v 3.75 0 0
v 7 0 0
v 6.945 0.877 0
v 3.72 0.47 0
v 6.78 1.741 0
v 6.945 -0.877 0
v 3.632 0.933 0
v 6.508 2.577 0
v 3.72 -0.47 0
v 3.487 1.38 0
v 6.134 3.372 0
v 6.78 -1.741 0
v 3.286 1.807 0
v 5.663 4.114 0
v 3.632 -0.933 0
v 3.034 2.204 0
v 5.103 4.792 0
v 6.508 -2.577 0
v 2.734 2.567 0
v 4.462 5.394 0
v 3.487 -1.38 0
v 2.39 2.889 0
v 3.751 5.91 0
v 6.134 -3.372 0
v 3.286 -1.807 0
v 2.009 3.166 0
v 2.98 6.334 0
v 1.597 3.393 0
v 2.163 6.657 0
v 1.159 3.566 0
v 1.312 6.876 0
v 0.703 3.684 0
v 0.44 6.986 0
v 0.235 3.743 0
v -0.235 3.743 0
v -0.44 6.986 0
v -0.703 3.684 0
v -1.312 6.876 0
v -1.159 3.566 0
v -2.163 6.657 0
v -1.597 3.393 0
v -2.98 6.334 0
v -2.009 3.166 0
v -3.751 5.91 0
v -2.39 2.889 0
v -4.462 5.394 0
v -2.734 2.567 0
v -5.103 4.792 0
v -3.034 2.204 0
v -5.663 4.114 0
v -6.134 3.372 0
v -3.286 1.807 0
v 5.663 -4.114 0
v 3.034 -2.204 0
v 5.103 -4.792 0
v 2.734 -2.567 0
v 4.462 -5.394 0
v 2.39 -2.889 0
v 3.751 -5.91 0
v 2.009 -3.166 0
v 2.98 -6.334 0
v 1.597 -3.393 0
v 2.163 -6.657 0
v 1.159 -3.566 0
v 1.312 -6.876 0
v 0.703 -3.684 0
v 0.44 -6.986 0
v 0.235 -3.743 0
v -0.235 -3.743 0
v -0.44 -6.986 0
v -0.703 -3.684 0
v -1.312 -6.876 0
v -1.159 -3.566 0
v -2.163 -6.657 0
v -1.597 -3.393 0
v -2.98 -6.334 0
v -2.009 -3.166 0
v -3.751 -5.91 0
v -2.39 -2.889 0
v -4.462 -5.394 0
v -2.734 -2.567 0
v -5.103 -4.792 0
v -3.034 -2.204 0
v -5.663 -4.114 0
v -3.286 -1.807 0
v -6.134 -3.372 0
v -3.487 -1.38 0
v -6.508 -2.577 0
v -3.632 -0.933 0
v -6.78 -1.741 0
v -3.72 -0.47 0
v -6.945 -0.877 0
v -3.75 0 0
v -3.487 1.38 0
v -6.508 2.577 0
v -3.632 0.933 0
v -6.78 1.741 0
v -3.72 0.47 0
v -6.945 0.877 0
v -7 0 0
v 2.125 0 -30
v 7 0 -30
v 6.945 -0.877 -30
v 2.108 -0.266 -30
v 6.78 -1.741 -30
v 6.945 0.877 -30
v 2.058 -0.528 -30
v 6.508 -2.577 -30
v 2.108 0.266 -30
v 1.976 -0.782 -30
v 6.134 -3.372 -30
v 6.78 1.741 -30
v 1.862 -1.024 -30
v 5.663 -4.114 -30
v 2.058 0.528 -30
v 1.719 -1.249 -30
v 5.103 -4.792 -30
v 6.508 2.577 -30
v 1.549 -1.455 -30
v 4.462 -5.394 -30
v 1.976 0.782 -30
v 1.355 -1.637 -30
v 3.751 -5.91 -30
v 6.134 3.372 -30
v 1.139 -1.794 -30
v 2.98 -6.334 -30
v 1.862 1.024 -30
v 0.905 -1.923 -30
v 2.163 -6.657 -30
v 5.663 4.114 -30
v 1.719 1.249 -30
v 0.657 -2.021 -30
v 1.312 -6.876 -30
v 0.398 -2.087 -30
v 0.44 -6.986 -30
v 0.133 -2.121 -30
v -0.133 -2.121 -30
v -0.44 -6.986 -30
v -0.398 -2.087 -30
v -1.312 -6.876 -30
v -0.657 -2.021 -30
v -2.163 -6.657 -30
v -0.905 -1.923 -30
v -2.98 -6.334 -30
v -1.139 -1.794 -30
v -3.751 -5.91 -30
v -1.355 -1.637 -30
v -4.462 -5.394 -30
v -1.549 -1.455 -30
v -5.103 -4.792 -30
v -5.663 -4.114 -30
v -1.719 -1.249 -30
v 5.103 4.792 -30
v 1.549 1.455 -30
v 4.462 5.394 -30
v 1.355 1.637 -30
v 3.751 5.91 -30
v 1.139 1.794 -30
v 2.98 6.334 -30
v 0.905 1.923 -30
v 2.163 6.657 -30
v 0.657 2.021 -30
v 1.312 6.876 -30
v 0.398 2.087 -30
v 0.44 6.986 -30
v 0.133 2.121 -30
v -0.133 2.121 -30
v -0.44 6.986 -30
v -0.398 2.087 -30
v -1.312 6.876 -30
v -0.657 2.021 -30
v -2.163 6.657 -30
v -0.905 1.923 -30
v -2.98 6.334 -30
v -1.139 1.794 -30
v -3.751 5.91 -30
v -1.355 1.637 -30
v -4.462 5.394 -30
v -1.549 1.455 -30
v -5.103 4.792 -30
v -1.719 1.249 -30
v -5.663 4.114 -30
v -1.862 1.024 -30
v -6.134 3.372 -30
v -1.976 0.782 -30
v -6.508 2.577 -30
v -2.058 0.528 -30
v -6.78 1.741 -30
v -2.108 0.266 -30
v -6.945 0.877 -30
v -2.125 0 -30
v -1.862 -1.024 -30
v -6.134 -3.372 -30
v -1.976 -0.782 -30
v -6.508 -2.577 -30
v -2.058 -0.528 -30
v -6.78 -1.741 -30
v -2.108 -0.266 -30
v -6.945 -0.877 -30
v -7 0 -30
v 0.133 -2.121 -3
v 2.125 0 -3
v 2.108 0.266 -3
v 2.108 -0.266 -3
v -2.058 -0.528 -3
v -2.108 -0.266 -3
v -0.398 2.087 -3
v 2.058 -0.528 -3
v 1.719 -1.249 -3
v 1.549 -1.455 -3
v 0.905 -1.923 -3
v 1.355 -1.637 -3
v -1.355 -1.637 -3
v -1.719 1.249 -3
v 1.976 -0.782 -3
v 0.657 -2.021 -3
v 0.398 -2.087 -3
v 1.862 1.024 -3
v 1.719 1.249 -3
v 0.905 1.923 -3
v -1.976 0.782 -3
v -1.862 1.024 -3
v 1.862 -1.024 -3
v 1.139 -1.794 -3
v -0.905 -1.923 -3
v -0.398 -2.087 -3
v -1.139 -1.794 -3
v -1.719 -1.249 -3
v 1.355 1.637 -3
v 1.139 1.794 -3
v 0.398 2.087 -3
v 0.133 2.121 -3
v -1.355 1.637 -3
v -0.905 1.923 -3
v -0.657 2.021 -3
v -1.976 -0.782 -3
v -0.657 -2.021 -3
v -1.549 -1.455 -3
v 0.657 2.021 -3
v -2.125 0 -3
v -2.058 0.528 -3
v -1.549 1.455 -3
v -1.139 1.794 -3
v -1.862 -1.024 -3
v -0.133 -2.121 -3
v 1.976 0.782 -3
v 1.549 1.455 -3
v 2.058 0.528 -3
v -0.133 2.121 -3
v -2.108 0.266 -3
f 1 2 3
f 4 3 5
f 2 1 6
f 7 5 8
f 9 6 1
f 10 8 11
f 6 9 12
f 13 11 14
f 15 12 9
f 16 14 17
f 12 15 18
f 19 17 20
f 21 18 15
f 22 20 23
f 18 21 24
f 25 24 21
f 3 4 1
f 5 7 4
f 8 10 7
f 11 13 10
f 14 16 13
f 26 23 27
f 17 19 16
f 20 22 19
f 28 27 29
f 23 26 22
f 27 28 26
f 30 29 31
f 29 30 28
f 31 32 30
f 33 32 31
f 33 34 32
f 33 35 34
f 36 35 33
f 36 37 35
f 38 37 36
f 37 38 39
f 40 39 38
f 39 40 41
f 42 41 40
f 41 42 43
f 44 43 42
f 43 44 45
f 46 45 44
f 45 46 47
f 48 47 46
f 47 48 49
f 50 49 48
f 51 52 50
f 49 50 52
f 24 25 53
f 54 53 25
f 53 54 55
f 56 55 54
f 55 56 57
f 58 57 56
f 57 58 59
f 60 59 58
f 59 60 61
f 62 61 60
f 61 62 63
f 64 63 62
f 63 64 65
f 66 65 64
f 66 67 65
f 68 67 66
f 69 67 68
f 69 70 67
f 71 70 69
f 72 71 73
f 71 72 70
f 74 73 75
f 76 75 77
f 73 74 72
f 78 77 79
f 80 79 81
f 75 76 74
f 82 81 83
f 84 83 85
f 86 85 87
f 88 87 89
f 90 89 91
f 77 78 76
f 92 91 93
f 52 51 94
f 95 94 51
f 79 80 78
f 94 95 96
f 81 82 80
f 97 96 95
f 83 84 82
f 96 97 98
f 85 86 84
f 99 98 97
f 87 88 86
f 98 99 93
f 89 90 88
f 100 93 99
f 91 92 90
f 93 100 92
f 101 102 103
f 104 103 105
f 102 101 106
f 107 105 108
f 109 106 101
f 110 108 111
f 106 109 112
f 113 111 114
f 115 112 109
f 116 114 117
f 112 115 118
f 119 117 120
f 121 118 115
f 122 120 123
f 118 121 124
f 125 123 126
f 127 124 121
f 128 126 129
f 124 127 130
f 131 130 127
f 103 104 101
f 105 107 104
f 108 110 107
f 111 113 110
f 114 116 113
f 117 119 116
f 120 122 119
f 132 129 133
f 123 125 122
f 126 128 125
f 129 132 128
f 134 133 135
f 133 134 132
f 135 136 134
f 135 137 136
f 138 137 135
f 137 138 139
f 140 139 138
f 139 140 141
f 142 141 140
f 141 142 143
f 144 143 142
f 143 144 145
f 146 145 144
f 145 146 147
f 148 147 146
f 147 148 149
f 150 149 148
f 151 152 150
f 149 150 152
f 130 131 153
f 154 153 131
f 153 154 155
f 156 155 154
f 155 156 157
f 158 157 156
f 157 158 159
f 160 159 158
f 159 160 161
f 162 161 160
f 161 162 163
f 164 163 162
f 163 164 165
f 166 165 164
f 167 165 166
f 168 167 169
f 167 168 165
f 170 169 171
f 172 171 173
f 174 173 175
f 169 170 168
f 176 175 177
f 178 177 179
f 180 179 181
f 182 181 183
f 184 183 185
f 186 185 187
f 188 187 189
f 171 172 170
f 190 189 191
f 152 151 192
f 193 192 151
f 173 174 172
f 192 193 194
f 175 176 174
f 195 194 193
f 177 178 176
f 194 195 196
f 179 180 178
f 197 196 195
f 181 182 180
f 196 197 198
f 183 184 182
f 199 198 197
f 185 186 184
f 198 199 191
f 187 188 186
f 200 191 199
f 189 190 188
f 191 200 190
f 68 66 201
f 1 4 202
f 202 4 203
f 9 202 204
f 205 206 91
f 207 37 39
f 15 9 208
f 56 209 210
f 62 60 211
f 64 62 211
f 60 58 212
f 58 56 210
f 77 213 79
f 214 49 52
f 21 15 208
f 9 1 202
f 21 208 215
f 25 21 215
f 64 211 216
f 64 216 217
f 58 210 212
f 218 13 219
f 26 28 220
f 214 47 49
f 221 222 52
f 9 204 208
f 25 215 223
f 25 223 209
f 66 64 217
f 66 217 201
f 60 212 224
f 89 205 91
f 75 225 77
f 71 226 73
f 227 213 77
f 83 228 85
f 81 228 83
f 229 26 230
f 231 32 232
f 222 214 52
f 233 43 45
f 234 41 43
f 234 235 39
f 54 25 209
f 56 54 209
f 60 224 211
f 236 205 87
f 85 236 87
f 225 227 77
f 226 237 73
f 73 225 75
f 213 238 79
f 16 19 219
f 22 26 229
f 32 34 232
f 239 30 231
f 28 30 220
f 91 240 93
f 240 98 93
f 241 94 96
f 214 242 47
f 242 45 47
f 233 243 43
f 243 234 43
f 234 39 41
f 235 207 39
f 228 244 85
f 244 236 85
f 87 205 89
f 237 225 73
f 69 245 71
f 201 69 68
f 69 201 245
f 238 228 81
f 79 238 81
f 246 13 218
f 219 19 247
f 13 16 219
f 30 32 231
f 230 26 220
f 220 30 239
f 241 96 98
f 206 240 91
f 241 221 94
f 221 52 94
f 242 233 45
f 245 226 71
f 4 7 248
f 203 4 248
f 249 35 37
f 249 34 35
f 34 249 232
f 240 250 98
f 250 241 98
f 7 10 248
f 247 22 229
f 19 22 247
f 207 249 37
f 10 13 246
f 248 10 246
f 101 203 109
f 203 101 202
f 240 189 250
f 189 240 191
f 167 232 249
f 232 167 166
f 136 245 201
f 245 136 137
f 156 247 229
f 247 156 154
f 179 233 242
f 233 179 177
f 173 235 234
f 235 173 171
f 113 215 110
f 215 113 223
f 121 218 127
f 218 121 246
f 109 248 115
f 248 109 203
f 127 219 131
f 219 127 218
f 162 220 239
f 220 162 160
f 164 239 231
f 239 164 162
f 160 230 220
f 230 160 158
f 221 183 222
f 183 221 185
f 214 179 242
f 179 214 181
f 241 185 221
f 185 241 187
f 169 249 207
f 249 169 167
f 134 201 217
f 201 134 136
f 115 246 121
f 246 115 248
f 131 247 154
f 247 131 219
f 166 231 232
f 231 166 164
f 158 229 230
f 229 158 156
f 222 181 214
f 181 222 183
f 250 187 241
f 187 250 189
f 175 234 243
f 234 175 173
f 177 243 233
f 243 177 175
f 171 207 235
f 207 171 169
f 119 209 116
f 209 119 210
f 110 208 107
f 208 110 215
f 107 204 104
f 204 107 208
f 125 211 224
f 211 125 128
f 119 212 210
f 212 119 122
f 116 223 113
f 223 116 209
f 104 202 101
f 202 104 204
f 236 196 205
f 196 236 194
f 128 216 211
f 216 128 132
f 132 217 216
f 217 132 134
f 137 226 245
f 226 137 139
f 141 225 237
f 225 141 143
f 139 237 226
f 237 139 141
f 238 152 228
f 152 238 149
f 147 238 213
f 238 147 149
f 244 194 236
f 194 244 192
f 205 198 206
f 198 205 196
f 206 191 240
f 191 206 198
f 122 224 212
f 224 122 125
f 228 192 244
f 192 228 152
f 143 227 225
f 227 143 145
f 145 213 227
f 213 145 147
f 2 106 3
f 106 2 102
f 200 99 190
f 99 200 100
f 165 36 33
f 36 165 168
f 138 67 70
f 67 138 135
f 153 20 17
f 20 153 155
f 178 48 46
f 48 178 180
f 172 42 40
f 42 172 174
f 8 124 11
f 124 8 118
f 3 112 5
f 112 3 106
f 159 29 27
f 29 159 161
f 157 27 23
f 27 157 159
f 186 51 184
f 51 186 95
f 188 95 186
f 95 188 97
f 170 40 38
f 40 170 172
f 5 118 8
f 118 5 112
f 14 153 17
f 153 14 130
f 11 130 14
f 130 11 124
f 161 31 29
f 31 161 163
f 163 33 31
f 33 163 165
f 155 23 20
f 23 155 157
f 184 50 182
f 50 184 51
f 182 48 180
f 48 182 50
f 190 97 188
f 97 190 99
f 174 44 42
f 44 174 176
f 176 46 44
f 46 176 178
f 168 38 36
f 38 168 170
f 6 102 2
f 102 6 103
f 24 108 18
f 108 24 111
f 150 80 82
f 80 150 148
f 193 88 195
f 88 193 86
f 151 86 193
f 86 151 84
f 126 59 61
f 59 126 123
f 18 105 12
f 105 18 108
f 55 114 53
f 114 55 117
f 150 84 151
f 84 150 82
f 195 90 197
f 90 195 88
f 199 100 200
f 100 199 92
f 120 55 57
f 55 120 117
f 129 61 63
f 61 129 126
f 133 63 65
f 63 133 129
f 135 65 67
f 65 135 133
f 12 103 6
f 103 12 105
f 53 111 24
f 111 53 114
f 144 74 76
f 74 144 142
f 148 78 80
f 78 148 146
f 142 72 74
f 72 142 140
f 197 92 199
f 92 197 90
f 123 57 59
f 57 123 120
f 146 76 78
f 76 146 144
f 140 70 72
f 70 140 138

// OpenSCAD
$fn = 50;


difference() {
	union() {
		translate(v = [0, 0, -30.0000000000]) {
			cylinder(h = 30, r = 7.0000000000);
		}
	}
	union() {
		translate(v = [0, 0, 0]) {
			rotate(a = [0, 0, 0]) {
				difference() {
					union() {
						#translate(v = [0, 0, -30.0000000000]) {
							cylinder(h = 30, r = 2.0000000000);
						}
						#translate(v = [0, 0, -3]) {
							cylinder(h = 3, r = 7.0000000000, r1 = 2.1250000000, r2 = 3.7500000000);
						}
						#translate(v = [0, 0, -30.0000000000]) {
							cylinder(h = 30, r = 2.1250000000);
						}
						#translate(v = [0, 0, -30.0000000000]) {
							cylinder(h = 30, r = 2.0000000000);
						}
					}
					union();
				}
			}
		}
	}
}
